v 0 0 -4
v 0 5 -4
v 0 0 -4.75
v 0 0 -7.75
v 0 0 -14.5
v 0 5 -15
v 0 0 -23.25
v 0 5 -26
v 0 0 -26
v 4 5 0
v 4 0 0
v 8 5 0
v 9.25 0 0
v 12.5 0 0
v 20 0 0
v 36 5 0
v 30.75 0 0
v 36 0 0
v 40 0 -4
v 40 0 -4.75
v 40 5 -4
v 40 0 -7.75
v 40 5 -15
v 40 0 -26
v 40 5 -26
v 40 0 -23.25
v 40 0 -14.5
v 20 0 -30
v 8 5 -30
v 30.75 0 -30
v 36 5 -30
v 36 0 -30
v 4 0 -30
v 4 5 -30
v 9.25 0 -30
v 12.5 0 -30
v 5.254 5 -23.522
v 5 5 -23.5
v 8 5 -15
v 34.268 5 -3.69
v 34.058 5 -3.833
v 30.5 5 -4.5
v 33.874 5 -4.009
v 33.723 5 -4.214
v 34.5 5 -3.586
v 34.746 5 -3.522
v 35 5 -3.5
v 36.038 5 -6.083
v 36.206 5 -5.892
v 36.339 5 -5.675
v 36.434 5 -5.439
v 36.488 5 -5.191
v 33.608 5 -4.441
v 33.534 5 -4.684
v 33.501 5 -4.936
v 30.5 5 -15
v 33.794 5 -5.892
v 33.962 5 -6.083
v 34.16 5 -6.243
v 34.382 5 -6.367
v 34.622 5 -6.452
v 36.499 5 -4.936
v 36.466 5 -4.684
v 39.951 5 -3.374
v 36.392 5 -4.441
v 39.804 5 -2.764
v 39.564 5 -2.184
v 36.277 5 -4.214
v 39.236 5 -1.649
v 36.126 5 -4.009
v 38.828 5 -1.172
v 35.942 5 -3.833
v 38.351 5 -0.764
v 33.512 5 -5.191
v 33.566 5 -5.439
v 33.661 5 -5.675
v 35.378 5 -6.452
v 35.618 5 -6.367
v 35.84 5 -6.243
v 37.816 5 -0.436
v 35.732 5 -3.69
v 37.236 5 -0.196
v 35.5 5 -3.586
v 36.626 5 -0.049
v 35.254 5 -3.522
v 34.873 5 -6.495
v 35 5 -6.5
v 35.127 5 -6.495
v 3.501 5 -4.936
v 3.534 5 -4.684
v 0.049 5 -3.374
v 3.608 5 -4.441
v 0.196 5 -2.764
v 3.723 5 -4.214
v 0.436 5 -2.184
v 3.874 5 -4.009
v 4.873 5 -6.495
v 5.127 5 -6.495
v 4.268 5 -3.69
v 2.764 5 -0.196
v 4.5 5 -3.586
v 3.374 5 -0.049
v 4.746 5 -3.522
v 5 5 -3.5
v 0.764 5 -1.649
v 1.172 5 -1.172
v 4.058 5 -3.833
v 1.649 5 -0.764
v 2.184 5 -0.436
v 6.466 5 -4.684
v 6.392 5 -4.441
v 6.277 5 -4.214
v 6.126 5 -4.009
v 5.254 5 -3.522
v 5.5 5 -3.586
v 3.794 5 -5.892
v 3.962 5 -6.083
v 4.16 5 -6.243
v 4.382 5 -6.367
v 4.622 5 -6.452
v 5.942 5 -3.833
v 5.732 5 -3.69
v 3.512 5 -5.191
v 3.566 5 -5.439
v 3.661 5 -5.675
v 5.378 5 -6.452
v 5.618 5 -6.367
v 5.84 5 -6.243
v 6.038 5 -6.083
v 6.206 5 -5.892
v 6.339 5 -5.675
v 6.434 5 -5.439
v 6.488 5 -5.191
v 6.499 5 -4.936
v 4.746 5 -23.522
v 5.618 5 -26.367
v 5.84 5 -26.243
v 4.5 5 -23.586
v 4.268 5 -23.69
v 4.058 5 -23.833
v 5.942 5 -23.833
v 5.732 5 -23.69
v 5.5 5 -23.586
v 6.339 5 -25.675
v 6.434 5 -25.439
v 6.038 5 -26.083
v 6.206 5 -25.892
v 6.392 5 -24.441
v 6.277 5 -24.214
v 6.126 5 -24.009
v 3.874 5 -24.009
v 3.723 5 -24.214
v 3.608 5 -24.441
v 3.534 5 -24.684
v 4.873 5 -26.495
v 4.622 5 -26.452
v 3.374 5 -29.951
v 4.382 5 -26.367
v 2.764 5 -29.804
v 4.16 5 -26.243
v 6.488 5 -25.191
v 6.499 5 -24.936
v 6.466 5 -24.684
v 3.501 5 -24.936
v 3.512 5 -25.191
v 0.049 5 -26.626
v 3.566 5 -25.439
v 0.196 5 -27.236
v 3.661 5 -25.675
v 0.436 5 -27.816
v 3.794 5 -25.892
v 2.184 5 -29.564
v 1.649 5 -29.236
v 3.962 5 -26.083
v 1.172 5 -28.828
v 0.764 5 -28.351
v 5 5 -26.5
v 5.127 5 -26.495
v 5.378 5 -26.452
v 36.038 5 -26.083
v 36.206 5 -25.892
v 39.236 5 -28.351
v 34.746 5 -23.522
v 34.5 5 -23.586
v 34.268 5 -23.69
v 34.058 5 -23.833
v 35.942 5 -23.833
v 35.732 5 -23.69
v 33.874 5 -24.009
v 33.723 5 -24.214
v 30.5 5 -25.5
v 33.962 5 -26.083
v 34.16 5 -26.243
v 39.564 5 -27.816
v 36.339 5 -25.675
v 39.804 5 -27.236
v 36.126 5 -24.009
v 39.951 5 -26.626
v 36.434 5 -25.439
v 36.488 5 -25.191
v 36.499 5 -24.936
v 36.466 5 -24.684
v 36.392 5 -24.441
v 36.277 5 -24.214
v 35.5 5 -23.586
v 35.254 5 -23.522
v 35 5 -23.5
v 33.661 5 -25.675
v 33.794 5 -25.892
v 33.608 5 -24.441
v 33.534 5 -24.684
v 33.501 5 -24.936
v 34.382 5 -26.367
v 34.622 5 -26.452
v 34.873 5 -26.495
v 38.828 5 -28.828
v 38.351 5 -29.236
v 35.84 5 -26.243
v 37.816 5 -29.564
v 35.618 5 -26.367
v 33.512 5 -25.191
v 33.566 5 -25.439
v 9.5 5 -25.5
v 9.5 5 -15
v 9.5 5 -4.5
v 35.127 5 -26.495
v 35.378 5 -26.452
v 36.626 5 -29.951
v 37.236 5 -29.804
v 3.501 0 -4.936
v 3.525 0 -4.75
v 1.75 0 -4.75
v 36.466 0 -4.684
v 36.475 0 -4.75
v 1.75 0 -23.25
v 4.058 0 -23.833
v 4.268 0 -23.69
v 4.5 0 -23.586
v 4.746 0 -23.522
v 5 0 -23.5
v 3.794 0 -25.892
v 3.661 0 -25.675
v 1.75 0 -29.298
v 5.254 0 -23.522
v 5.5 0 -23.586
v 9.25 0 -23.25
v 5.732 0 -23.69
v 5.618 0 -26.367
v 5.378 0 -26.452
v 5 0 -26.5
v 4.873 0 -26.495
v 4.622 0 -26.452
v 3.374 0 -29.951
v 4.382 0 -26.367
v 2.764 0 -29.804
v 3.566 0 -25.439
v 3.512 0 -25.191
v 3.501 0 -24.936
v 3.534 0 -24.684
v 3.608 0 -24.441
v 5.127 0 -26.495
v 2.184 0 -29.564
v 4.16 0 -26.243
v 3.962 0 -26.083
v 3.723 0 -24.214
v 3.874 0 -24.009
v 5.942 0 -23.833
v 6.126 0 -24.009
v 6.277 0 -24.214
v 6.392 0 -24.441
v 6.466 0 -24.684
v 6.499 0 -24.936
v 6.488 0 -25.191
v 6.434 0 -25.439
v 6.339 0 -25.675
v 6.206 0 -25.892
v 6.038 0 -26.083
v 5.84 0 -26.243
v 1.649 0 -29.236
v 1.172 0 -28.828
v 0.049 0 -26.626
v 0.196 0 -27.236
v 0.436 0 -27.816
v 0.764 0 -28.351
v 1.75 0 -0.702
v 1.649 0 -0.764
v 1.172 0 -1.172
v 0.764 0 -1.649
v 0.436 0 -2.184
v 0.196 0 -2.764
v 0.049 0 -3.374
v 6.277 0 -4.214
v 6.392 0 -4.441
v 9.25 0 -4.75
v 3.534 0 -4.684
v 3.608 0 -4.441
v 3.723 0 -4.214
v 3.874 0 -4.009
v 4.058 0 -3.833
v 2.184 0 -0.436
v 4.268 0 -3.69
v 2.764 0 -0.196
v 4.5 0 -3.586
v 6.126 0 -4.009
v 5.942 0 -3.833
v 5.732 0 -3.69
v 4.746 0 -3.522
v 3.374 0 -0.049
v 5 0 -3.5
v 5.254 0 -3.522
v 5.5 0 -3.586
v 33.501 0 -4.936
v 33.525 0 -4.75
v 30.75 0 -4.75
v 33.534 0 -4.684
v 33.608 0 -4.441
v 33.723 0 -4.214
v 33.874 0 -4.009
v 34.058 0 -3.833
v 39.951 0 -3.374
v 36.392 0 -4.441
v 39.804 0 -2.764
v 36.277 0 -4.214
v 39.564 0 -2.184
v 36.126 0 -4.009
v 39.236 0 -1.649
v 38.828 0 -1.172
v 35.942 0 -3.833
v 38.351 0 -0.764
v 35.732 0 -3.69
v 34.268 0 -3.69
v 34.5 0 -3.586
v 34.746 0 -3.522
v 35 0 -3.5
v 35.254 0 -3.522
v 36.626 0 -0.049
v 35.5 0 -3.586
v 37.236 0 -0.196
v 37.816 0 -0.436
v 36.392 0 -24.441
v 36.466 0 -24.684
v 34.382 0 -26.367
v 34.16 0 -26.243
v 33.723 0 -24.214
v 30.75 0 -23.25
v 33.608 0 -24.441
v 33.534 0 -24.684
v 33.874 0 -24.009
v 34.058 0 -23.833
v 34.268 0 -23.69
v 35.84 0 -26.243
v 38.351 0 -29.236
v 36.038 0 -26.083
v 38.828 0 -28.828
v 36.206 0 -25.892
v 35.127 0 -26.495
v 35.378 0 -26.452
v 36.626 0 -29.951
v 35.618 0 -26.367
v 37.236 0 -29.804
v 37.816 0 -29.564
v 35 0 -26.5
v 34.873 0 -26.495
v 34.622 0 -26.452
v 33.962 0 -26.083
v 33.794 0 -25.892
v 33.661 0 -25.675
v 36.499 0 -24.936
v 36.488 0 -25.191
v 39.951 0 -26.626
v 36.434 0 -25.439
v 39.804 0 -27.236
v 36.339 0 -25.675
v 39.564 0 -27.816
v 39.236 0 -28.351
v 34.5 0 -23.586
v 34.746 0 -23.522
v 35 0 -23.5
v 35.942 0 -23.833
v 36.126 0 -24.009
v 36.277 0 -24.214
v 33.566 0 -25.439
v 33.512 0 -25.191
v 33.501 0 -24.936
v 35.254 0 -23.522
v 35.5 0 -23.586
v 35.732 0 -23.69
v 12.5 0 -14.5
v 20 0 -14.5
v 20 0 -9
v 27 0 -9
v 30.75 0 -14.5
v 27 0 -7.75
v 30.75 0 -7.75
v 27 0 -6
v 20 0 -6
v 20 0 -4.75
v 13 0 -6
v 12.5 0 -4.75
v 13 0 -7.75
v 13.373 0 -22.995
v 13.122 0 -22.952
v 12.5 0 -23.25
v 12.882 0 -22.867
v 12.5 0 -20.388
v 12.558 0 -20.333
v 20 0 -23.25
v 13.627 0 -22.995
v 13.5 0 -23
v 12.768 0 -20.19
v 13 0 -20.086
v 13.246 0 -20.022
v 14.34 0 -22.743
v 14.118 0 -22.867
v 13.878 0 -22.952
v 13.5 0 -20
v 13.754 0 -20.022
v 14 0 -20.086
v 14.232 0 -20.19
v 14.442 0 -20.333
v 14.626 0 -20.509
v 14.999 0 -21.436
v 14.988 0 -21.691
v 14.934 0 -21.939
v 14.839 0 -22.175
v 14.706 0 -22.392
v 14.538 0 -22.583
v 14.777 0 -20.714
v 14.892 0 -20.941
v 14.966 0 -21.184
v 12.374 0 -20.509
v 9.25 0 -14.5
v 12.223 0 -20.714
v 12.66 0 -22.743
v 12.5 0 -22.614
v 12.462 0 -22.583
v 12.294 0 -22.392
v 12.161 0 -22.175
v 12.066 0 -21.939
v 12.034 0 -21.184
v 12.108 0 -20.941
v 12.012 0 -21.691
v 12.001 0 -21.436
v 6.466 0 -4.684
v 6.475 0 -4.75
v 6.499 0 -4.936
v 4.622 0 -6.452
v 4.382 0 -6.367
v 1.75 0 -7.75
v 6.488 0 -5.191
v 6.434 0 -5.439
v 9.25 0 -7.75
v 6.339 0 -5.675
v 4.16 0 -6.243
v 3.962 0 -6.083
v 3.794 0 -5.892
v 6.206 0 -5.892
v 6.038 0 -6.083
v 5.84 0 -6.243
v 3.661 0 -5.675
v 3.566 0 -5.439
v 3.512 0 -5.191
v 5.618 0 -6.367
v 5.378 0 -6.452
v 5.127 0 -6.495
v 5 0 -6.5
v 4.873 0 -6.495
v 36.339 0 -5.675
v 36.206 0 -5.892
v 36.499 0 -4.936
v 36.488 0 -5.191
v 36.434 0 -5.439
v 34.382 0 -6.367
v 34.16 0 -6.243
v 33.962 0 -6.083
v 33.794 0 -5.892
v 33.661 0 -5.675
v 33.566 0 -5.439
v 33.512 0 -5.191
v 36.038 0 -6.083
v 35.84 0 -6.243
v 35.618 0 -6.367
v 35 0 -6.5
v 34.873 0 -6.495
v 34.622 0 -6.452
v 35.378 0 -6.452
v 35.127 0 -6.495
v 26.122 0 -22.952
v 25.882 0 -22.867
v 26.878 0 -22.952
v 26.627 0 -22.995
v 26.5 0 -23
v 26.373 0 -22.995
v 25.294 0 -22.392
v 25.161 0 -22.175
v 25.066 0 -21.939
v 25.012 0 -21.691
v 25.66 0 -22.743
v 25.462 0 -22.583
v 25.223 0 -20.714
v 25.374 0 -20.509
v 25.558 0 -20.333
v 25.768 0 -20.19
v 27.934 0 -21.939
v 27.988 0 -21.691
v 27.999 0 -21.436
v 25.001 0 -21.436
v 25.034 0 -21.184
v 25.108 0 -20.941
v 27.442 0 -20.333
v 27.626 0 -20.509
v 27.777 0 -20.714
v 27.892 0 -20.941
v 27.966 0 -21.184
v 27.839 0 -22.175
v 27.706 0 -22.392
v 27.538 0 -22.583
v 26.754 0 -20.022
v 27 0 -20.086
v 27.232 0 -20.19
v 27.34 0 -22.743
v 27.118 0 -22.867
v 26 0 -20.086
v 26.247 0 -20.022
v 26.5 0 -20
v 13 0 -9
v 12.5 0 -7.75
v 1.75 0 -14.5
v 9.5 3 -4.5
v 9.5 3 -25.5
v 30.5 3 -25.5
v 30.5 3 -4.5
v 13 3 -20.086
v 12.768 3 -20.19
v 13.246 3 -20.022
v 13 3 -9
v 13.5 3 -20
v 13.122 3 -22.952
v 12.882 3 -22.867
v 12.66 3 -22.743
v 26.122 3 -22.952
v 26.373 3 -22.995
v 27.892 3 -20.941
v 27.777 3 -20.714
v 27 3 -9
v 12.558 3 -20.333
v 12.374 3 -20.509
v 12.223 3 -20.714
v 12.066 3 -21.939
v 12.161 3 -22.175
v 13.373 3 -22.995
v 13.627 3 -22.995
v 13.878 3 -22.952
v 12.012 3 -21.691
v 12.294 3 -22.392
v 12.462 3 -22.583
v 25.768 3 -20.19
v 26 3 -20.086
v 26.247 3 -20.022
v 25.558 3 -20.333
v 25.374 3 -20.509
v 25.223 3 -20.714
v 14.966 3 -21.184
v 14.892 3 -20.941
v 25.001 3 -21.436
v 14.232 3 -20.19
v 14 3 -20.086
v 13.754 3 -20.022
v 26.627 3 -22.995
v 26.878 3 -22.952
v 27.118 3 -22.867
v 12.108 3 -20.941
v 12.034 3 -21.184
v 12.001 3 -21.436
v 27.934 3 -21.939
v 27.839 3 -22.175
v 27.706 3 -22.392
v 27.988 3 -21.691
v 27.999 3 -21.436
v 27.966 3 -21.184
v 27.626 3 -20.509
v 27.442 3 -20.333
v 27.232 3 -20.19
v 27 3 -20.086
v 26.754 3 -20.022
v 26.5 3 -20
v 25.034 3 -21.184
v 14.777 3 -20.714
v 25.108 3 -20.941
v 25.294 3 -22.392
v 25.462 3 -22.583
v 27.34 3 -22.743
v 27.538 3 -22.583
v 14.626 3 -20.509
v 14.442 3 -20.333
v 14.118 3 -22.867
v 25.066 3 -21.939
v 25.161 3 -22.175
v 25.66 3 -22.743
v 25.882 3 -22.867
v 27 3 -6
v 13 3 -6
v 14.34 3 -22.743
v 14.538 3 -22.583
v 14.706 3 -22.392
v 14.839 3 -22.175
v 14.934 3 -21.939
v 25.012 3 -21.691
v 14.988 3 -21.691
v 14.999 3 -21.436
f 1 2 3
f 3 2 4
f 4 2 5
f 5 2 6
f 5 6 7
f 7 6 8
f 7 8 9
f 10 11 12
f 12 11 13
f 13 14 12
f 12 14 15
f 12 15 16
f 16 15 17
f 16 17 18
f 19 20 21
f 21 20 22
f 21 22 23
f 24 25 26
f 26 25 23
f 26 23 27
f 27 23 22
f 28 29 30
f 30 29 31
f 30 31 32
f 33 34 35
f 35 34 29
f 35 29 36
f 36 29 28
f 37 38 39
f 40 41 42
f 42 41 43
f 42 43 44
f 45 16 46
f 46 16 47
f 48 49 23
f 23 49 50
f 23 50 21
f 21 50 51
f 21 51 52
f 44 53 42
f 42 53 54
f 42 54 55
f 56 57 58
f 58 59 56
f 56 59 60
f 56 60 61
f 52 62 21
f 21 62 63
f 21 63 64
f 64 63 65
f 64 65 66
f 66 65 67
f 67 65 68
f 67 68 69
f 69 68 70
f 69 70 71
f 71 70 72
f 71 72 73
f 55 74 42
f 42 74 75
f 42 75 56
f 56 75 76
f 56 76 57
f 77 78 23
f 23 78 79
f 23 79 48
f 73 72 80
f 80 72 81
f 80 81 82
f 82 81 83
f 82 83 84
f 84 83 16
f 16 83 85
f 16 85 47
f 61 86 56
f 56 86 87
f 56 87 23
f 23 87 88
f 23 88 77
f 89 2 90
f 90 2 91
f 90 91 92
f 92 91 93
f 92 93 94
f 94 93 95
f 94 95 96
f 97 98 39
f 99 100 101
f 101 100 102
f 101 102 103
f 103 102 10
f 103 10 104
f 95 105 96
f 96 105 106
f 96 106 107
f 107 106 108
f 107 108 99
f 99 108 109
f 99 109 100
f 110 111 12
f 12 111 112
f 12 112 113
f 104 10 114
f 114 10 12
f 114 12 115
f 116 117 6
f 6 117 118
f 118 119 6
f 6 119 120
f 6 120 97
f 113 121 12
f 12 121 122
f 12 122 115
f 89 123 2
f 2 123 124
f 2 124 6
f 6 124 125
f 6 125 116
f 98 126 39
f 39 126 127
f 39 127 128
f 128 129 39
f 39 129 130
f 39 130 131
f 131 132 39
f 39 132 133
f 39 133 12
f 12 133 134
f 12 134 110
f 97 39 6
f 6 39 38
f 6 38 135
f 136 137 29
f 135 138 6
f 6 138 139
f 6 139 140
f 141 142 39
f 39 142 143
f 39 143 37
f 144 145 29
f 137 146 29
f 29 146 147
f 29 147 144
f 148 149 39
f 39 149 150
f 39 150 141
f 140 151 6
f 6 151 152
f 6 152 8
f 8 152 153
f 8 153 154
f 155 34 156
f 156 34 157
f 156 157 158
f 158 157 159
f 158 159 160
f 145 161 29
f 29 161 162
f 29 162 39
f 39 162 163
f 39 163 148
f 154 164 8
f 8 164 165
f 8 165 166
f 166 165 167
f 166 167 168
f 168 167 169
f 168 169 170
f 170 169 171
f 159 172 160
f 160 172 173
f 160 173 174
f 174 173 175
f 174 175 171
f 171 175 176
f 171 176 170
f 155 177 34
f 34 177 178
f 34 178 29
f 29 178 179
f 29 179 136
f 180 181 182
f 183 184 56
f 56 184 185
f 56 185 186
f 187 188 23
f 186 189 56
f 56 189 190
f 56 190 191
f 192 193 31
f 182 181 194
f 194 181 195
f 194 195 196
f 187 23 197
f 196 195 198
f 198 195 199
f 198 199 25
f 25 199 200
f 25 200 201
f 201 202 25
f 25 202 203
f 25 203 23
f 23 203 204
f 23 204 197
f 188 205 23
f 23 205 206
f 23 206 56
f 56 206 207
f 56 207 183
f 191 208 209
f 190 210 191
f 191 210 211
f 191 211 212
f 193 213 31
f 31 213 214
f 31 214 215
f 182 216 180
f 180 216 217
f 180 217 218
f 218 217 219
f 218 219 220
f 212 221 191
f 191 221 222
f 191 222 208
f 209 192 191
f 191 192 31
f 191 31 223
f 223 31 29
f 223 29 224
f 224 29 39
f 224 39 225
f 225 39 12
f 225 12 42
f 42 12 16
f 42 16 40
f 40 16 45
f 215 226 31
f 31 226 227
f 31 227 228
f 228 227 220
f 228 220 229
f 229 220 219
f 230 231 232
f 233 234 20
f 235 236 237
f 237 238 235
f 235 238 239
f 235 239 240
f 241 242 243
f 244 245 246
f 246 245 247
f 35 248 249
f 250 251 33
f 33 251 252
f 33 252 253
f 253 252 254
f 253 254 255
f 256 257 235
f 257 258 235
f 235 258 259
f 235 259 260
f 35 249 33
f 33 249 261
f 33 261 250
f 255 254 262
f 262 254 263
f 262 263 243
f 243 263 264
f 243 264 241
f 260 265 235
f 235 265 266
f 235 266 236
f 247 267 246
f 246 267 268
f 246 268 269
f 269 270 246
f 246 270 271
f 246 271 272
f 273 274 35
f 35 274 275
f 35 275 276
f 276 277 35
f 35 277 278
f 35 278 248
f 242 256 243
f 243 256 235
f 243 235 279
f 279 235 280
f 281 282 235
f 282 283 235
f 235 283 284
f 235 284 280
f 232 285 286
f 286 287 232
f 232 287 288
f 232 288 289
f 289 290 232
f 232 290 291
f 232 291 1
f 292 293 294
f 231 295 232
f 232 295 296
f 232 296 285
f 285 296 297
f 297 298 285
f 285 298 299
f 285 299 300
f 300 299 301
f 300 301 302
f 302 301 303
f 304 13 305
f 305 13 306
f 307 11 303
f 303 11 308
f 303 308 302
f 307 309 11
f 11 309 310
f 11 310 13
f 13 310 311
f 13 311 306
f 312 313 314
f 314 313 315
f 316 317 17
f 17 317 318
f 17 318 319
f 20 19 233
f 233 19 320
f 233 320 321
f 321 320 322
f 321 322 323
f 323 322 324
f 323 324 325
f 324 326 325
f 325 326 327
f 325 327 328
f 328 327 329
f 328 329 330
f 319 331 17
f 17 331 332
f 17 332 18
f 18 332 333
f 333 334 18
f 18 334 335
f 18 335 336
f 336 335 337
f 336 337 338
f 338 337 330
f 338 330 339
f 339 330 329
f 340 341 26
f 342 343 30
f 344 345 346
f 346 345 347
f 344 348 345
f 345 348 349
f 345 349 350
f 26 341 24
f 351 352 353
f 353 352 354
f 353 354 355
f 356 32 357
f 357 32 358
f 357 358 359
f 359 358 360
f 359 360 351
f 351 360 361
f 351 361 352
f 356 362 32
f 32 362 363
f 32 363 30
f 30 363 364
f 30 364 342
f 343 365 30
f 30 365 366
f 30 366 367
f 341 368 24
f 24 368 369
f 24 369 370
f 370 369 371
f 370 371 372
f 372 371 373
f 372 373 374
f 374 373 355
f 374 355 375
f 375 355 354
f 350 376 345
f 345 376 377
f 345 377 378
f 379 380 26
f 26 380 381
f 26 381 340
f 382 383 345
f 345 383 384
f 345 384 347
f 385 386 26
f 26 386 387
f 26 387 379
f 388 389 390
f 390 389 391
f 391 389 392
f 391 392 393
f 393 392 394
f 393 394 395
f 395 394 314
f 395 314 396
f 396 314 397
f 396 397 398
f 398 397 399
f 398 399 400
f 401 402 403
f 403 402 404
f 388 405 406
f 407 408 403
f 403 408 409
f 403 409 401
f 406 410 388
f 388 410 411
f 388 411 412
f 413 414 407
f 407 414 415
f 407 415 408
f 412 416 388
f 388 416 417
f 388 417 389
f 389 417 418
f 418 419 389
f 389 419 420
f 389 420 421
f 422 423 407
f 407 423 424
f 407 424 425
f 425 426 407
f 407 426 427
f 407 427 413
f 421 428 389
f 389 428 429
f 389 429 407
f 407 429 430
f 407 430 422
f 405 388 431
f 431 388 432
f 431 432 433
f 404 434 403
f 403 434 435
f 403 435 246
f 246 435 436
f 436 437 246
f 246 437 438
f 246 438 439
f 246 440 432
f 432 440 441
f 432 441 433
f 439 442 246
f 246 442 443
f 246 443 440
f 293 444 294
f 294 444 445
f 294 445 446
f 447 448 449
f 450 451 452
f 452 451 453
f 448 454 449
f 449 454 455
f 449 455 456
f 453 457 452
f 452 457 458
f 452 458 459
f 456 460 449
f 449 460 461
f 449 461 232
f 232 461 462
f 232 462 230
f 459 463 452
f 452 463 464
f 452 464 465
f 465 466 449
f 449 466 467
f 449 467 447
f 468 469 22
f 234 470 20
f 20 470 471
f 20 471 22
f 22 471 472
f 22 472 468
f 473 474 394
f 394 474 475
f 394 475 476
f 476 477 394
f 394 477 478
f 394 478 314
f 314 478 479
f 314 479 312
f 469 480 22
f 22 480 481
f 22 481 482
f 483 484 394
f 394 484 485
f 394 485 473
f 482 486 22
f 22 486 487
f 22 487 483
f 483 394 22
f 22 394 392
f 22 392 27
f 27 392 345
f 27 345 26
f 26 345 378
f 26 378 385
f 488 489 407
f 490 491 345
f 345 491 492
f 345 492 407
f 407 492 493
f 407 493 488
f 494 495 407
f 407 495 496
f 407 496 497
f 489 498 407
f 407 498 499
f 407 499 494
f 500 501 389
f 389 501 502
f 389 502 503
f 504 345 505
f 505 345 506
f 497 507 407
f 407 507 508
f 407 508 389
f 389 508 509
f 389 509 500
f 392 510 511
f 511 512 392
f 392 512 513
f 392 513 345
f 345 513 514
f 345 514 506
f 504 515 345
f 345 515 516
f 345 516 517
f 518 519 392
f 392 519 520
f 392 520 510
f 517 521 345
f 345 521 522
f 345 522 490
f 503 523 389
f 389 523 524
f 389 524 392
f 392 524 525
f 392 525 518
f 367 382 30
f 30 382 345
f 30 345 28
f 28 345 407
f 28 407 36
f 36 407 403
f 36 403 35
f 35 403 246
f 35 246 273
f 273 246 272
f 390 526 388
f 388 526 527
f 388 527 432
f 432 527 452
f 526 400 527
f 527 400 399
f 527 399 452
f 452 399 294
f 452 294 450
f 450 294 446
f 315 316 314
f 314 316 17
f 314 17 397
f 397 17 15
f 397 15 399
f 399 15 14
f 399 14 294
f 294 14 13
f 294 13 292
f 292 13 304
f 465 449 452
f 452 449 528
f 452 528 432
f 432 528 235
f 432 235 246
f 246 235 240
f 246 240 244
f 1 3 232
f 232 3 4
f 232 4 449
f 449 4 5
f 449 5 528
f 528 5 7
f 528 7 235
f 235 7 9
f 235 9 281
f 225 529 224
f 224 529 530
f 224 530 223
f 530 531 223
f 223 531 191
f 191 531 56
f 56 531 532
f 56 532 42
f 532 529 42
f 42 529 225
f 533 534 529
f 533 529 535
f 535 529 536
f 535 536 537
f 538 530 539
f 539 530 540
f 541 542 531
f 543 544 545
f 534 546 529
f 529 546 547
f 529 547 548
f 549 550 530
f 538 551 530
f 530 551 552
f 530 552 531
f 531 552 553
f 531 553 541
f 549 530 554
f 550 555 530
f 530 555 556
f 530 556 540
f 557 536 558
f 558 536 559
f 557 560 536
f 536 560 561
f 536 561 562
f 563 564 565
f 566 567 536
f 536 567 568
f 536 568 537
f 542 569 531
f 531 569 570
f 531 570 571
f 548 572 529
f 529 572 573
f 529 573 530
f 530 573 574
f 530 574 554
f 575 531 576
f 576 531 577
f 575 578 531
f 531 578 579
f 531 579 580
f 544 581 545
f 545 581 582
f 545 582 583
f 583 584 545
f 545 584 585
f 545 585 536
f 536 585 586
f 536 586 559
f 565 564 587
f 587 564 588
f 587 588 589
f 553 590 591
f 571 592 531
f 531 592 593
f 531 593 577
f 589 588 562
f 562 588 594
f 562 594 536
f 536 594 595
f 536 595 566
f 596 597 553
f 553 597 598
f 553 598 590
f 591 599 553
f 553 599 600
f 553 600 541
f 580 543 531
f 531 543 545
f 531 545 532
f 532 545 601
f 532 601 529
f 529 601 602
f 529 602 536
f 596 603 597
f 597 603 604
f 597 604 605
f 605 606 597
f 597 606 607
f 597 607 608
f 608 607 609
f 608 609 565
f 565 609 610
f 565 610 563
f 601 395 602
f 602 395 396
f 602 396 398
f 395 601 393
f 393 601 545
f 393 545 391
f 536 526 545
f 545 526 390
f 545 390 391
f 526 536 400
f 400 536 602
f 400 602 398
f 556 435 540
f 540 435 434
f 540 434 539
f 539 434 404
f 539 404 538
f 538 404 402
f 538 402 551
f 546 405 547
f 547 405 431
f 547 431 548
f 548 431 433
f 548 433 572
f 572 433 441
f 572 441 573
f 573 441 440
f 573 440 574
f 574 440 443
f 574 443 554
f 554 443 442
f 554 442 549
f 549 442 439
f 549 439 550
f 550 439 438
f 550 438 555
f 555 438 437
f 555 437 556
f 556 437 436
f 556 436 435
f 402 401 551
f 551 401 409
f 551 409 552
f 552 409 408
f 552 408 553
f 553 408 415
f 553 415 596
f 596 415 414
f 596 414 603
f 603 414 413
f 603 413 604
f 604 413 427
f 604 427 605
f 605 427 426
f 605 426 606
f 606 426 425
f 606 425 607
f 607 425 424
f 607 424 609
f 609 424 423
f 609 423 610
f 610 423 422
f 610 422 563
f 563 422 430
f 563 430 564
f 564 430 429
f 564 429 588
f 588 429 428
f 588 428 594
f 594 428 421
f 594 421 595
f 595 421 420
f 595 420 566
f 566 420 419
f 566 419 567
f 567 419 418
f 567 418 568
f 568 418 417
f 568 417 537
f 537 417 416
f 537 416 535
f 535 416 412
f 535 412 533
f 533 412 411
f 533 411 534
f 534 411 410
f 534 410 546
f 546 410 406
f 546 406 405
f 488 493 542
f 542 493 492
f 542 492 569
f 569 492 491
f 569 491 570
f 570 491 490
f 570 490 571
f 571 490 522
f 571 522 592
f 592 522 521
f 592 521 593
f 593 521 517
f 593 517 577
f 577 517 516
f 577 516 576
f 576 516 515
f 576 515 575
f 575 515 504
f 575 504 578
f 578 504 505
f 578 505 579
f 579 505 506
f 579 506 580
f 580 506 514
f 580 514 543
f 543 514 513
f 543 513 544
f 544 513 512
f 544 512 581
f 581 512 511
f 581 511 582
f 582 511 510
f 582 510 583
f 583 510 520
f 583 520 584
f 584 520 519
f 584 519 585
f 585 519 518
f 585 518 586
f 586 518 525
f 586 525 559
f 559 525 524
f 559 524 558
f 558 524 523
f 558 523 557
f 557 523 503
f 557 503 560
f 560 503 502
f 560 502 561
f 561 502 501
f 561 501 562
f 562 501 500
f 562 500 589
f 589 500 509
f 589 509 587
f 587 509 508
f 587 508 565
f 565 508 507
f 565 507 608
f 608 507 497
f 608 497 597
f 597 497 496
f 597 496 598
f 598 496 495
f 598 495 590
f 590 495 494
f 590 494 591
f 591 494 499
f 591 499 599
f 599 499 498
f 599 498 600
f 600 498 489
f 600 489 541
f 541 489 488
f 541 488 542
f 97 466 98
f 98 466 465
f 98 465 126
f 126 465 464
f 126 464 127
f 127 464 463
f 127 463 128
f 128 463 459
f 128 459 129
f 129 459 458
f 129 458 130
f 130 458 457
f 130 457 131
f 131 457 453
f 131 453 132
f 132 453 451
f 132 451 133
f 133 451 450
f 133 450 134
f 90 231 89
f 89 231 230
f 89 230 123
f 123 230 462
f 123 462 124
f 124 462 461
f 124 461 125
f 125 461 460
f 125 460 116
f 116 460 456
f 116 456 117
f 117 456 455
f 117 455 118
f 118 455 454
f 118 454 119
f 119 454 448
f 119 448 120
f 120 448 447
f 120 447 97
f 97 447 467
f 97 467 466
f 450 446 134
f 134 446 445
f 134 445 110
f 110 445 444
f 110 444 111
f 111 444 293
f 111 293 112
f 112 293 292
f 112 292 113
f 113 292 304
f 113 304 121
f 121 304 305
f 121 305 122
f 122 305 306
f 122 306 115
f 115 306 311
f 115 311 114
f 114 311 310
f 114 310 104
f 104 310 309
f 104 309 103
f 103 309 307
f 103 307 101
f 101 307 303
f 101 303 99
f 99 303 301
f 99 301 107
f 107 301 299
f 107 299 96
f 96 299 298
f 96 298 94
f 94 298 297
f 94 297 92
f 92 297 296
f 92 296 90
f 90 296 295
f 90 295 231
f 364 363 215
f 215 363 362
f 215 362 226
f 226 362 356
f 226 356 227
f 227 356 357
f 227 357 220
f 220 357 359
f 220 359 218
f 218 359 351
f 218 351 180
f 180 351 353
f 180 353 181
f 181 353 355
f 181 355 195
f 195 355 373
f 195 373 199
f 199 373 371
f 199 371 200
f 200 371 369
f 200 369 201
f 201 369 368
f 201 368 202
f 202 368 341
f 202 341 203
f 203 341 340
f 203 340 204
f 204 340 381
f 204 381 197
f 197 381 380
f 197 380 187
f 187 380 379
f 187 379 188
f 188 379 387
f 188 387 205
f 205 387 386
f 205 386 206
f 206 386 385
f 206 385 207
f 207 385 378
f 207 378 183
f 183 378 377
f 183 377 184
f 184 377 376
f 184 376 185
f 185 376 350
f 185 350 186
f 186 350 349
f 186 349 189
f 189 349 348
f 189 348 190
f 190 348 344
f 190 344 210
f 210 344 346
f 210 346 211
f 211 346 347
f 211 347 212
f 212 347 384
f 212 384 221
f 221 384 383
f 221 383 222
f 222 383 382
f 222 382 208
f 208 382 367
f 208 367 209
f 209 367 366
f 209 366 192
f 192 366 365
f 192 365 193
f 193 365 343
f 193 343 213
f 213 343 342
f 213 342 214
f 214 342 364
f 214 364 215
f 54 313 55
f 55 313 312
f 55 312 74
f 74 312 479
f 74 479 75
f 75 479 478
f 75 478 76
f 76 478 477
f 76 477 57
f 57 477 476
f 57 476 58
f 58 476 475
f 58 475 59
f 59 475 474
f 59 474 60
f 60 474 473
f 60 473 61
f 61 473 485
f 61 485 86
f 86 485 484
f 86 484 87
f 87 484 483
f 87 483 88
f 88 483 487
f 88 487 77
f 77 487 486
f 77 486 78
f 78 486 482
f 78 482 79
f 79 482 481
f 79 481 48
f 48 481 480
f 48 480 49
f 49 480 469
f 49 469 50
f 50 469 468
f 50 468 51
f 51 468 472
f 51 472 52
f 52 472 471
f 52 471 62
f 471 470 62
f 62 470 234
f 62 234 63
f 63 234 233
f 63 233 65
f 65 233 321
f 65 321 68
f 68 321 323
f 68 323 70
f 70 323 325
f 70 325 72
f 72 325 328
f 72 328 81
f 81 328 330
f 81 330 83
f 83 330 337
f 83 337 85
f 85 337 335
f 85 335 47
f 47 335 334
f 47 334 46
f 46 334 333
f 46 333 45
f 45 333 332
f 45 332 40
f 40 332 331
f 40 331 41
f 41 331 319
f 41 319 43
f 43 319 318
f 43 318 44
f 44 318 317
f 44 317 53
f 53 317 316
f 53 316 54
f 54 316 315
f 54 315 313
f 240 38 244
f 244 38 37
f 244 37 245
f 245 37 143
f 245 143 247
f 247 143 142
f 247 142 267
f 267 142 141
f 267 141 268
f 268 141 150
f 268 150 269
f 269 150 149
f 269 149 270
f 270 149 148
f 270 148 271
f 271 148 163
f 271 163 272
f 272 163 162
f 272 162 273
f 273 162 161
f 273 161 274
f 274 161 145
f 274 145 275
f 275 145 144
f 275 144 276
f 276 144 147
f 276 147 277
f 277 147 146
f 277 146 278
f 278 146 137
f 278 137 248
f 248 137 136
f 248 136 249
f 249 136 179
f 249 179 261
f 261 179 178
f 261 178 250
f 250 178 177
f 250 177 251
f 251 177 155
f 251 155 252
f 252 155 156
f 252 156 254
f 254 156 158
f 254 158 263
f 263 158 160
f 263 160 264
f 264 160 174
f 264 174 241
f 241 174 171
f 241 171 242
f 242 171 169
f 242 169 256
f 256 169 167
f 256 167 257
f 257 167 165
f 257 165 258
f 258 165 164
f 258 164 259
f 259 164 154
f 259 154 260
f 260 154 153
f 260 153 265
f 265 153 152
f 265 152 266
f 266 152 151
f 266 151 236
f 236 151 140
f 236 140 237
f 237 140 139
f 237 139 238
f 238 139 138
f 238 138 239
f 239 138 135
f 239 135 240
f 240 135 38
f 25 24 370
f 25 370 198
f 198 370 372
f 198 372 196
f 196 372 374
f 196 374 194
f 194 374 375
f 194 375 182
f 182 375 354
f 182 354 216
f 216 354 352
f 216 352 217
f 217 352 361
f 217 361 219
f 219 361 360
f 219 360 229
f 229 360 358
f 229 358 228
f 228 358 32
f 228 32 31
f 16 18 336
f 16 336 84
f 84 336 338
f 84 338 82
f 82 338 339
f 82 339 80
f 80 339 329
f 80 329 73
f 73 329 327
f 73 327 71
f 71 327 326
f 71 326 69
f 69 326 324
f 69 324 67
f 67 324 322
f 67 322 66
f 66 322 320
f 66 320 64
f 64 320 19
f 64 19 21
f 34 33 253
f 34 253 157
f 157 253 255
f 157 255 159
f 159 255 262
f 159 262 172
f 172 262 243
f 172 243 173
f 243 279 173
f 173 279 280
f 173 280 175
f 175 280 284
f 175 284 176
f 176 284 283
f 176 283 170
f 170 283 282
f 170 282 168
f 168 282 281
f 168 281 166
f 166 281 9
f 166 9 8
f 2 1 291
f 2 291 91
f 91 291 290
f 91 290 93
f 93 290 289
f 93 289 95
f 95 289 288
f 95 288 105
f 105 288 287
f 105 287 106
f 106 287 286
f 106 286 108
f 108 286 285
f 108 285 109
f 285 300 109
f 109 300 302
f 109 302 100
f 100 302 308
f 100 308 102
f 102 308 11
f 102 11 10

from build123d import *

# Parameters (mm, degrees)
SKETCH1_W           = 40
SKETCH1_H           = 30
BOSS_EXTRUDE1_DEPTH = 5
SKETCH2_W           = 21
SKETCH2_H           = 21
CUT_EXTRUDE1_DEPTH  = 2
SKETCH3_W           = 14
SKETCH3_H           = 3
CUT_EXTRUDE2_DEPTH  = 3
SKETCH4_R           = 1.5
CUT_EXTRUDE3_DEPTH  = 3
SKETCH5_R           = 1.5
CUT_EXTRUDE4_DEPTH  = 5
FILLET1_R           = 4


with BuildPart() as part:
    # Sketch1 → Boss-Extrude1 (new body)
    with BuildSketch(Plane(origin=(0, 0, 0), x_dir=(1, 0, 0), z_dir=(0, 1, 0))):
        with Locations((20, 15)):
            Rectangle(SKETCH1_W, SKETCH1_H)
    extrude(amount=BOSS_EXTRUDE1_DEPTH)

    # Sketch2 → Cut-Extrude1 (cut)
    with BuildSketch(Plane(origin=(0, 5, 0), x_dir=(1, 0, 0), z_dir=(0, 1, 0))):
        with Locations((20, 15)):
            Rectangle(SKETCH2_W, SKETCH2_H)
    extrude(amount=-CUT_EXTRUDE1_DEPTH, mode=Mode.SUBTRACT)

    # Sketch3 → Cut-Extrude2 (cut)
    with BuildSketch(Plane(origin=(0, 3, 0), x_dir=(1, 0, 0), z_dir=(0, 1, 0))):
        with Locations((20, 7.5)):
            Rectangle(SKETCH3_W, SKETCH3_H)
    extrude(amount=-CUT_EXTRUDE2_DEPTH, mode=Mode.SUBTRACT)

    # Sketch4 → Cut-Extrude3 (cut)
    with BuildSketch(Plane(origin=(0, 3, 0), x_dir=(1, 0, 0), z_dir=(0, 1, 0))):
        with Locations(Location((13.5, 21.5, 0), (0, 0, 270))):
            Circle(SKETCH4_R)
        with Locations(Location((26.5, 21.5, 0), (0, 0, 270))):
            Circle(SKETCH4_R)
    extrude(amount=-CUT_EXTRUDE3_DEPTH, mode=Mode.SUBTRACT)

    # Sketch5 → Cut-Extrude4 (cut)
    with BuildSketch(Plane(origin=(0, 5, 0), x_dir=(1, 0, 0), z_dir=(0, 1, 0))):
        with Locations(Location((5, 25, 0), (0, 0, 90))):
            Circle(SKETCH5_R)
        with Locations(Location((35, 5, 0), (0, 0, 90))):
            Circle(SKETCH5_R)
        with Locations(Location((35, 25, 0), (0, 0, 270))):
            Circle(SKETCH5_R)
        with Locations(Location((5, 5, 0), (0, 0, 270))):
            Circle(SKETCH5_R)
    extrude(amount=-CUT_EXTRUDE4_DEPTH, mode=Mode.SUBTRACT)

    # Fillet1
    fillet1_edges = [part.edges().sort_by_distance(p)[0] for p in [
        (0, 2.5, -30),
        (40, 2.5, -30),
        (40, 2.5, 0),
        (0, 2.5, 0),
    ]]
    fillet(fillet1_edges, radius=FILLET1_R)


solid = part.part
